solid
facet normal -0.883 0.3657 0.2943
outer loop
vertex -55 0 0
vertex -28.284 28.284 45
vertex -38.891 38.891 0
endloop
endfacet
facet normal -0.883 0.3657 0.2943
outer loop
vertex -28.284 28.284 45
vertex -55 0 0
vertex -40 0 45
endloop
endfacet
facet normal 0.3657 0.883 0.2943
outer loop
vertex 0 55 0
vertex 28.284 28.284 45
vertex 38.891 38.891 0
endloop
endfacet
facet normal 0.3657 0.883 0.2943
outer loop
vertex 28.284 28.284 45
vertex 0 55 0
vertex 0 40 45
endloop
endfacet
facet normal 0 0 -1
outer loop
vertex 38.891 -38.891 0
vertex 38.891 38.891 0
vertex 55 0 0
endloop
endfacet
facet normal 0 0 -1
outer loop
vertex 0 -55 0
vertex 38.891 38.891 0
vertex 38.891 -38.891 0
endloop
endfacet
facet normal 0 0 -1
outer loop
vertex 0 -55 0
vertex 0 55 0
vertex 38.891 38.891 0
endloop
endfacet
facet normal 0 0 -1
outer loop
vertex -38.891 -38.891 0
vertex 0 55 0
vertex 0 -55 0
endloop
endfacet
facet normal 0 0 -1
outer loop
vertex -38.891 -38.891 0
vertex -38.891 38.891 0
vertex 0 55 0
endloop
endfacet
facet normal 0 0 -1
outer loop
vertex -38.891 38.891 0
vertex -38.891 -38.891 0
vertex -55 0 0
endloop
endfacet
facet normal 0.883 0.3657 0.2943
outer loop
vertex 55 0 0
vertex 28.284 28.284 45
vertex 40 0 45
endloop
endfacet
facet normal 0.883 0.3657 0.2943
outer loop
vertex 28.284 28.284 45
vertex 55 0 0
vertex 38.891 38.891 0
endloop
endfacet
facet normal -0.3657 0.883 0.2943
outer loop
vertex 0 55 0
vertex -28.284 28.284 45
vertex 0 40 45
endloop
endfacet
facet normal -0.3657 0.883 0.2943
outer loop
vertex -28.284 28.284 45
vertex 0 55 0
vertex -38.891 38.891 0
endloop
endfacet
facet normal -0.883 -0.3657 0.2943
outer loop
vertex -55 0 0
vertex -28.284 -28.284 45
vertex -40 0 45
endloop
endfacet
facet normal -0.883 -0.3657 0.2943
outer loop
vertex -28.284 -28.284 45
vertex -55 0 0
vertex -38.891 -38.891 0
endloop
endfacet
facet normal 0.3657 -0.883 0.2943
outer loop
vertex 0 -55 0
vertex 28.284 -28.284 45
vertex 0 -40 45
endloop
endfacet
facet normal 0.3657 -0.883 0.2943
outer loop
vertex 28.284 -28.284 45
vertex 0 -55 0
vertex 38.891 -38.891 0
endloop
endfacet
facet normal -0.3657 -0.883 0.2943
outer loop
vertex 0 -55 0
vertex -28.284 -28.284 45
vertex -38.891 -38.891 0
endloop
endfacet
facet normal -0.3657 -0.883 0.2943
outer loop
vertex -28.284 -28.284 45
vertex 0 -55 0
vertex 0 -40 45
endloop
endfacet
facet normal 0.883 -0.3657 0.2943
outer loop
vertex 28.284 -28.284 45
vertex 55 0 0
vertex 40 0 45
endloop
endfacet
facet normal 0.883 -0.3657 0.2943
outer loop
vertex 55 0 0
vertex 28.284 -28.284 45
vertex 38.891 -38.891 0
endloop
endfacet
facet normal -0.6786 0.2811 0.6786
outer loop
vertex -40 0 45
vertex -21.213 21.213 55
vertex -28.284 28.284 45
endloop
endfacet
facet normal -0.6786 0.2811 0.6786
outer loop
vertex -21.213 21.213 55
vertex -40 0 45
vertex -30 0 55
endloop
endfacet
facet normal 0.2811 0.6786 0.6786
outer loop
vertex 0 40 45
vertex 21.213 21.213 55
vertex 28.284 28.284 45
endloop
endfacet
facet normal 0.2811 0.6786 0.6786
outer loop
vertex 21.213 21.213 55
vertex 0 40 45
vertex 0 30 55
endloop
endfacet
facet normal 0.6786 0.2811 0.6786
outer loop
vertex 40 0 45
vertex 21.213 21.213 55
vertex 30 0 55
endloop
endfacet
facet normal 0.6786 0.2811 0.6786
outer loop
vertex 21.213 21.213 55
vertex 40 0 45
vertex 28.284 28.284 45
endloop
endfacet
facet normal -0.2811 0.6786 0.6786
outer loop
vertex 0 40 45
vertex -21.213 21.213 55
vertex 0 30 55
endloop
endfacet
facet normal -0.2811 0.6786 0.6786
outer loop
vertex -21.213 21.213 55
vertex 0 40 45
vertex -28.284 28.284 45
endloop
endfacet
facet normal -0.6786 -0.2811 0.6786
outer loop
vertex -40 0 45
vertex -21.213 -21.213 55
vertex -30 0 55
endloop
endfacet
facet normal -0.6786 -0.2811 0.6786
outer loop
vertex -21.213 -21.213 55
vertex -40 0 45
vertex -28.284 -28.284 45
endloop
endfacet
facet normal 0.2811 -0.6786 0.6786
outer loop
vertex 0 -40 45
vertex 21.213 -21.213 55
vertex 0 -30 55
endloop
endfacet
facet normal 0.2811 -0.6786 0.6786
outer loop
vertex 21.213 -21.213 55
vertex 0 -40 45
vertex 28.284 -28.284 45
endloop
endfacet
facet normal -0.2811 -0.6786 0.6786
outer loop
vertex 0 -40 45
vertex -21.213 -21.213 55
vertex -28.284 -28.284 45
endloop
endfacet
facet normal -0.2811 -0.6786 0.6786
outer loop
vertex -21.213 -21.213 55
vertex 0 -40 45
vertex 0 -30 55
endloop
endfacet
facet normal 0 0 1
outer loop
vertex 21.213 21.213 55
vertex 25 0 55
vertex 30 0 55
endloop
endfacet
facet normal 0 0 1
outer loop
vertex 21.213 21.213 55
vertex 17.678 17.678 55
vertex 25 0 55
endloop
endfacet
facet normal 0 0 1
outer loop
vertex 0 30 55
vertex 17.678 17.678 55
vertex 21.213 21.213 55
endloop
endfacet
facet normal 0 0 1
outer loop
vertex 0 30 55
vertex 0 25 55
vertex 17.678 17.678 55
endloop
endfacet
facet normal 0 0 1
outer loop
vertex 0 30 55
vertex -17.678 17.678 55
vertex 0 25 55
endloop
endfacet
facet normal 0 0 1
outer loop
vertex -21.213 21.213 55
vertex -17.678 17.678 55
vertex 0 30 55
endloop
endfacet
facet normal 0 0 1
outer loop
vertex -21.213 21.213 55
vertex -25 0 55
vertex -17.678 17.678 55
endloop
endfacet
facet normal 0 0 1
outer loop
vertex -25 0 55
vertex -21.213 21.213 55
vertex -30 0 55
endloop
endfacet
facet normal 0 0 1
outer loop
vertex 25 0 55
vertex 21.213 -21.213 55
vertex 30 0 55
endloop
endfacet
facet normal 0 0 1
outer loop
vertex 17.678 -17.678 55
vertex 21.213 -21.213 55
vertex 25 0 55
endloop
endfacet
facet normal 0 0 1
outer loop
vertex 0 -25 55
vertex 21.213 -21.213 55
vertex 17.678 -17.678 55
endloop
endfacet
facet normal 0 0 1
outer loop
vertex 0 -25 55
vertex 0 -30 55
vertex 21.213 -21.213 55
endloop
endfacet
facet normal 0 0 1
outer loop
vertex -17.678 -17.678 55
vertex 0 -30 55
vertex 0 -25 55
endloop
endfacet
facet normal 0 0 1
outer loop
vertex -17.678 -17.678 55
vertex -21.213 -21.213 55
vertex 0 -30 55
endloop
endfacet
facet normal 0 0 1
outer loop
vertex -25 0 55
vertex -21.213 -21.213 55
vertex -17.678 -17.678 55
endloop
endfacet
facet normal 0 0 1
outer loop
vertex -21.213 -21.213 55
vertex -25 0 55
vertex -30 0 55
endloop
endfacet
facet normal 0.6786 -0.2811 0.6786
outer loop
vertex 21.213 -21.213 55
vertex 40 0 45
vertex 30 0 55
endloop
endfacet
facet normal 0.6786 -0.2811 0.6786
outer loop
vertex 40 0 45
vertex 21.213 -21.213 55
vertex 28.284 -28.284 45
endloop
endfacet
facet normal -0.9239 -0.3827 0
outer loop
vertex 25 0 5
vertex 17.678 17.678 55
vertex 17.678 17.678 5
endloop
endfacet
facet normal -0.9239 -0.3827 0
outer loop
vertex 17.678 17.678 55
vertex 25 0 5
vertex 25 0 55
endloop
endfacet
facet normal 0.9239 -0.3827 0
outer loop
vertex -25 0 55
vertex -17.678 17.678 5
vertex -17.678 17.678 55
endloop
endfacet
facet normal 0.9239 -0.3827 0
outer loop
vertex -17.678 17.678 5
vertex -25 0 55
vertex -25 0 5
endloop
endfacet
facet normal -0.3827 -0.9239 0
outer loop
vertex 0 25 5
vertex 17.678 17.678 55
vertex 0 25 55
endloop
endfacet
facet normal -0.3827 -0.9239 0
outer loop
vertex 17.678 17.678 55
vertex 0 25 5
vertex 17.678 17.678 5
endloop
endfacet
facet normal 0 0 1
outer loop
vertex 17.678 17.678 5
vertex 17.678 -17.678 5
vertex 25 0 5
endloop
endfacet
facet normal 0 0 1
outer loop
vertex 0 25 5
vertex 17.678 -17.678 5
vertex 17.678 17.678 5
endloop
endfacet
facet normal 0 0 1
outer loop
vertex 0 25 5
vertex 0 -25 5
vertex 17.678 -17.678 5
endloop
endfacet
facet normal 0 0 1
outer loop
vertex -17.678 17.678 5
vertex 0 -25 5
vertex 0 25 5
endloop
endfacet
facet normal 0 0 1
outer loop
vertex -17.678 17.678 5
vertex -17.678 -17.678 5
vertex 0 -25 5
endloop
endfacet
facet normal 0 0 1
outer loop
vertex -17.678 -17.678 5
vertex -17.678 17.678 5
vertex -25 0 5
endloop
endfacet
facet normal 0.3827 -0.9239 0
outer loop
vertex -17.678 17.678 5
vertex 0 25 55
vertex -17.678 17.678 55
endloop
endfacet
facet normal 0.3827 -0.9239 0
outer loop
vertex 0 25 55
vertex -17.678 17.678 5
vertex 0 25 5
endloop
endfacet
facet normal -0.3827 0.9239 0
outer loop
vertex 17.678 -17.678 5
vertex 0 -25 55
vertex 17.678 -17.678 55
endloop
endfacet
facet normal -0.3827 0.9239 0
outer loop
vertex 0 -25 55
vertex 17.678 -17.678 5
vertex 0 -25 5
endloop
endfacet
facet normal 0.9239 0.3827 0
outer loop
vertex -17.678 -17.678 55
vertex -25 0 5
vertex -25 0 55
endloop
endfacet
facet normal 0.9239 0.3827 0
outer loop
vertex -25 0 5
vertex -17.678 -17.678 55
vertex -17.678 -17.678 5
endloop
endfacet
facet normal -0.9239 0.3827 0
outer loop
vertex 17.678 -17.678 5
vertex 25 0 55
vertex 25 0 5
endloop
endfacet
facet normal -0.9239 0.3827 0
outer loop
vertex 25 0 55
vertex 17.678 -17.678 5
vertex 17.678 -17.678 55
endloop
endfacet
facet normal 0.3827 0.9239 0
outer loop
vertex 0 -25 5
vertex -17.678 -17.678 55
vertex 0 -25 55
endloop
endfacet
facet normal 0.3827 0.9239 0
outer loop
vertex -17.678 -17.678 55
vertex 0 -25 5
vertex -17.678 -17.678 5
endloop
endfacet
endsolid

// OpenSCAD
a = 45;//height
b = 55;//radius1
c = 40;//radius2
d = 5;//thikness
e = 10;//top_height
f = 30;//top_radius2
$fn = 8;//nunber of polygon

module target(){
    union(){
        cylinder(h = a,r1 = b, r2 = c);
        translate([0,0,a])
            cylinder(h = e, r1 = c, r2 = f);
    }
}
    
module tool(){
    translate([0,0,d])
		cylinder(h = 55, r1 = f-d, r2 = f-d);
}
        
difference(){
    target();
    tool();
}
